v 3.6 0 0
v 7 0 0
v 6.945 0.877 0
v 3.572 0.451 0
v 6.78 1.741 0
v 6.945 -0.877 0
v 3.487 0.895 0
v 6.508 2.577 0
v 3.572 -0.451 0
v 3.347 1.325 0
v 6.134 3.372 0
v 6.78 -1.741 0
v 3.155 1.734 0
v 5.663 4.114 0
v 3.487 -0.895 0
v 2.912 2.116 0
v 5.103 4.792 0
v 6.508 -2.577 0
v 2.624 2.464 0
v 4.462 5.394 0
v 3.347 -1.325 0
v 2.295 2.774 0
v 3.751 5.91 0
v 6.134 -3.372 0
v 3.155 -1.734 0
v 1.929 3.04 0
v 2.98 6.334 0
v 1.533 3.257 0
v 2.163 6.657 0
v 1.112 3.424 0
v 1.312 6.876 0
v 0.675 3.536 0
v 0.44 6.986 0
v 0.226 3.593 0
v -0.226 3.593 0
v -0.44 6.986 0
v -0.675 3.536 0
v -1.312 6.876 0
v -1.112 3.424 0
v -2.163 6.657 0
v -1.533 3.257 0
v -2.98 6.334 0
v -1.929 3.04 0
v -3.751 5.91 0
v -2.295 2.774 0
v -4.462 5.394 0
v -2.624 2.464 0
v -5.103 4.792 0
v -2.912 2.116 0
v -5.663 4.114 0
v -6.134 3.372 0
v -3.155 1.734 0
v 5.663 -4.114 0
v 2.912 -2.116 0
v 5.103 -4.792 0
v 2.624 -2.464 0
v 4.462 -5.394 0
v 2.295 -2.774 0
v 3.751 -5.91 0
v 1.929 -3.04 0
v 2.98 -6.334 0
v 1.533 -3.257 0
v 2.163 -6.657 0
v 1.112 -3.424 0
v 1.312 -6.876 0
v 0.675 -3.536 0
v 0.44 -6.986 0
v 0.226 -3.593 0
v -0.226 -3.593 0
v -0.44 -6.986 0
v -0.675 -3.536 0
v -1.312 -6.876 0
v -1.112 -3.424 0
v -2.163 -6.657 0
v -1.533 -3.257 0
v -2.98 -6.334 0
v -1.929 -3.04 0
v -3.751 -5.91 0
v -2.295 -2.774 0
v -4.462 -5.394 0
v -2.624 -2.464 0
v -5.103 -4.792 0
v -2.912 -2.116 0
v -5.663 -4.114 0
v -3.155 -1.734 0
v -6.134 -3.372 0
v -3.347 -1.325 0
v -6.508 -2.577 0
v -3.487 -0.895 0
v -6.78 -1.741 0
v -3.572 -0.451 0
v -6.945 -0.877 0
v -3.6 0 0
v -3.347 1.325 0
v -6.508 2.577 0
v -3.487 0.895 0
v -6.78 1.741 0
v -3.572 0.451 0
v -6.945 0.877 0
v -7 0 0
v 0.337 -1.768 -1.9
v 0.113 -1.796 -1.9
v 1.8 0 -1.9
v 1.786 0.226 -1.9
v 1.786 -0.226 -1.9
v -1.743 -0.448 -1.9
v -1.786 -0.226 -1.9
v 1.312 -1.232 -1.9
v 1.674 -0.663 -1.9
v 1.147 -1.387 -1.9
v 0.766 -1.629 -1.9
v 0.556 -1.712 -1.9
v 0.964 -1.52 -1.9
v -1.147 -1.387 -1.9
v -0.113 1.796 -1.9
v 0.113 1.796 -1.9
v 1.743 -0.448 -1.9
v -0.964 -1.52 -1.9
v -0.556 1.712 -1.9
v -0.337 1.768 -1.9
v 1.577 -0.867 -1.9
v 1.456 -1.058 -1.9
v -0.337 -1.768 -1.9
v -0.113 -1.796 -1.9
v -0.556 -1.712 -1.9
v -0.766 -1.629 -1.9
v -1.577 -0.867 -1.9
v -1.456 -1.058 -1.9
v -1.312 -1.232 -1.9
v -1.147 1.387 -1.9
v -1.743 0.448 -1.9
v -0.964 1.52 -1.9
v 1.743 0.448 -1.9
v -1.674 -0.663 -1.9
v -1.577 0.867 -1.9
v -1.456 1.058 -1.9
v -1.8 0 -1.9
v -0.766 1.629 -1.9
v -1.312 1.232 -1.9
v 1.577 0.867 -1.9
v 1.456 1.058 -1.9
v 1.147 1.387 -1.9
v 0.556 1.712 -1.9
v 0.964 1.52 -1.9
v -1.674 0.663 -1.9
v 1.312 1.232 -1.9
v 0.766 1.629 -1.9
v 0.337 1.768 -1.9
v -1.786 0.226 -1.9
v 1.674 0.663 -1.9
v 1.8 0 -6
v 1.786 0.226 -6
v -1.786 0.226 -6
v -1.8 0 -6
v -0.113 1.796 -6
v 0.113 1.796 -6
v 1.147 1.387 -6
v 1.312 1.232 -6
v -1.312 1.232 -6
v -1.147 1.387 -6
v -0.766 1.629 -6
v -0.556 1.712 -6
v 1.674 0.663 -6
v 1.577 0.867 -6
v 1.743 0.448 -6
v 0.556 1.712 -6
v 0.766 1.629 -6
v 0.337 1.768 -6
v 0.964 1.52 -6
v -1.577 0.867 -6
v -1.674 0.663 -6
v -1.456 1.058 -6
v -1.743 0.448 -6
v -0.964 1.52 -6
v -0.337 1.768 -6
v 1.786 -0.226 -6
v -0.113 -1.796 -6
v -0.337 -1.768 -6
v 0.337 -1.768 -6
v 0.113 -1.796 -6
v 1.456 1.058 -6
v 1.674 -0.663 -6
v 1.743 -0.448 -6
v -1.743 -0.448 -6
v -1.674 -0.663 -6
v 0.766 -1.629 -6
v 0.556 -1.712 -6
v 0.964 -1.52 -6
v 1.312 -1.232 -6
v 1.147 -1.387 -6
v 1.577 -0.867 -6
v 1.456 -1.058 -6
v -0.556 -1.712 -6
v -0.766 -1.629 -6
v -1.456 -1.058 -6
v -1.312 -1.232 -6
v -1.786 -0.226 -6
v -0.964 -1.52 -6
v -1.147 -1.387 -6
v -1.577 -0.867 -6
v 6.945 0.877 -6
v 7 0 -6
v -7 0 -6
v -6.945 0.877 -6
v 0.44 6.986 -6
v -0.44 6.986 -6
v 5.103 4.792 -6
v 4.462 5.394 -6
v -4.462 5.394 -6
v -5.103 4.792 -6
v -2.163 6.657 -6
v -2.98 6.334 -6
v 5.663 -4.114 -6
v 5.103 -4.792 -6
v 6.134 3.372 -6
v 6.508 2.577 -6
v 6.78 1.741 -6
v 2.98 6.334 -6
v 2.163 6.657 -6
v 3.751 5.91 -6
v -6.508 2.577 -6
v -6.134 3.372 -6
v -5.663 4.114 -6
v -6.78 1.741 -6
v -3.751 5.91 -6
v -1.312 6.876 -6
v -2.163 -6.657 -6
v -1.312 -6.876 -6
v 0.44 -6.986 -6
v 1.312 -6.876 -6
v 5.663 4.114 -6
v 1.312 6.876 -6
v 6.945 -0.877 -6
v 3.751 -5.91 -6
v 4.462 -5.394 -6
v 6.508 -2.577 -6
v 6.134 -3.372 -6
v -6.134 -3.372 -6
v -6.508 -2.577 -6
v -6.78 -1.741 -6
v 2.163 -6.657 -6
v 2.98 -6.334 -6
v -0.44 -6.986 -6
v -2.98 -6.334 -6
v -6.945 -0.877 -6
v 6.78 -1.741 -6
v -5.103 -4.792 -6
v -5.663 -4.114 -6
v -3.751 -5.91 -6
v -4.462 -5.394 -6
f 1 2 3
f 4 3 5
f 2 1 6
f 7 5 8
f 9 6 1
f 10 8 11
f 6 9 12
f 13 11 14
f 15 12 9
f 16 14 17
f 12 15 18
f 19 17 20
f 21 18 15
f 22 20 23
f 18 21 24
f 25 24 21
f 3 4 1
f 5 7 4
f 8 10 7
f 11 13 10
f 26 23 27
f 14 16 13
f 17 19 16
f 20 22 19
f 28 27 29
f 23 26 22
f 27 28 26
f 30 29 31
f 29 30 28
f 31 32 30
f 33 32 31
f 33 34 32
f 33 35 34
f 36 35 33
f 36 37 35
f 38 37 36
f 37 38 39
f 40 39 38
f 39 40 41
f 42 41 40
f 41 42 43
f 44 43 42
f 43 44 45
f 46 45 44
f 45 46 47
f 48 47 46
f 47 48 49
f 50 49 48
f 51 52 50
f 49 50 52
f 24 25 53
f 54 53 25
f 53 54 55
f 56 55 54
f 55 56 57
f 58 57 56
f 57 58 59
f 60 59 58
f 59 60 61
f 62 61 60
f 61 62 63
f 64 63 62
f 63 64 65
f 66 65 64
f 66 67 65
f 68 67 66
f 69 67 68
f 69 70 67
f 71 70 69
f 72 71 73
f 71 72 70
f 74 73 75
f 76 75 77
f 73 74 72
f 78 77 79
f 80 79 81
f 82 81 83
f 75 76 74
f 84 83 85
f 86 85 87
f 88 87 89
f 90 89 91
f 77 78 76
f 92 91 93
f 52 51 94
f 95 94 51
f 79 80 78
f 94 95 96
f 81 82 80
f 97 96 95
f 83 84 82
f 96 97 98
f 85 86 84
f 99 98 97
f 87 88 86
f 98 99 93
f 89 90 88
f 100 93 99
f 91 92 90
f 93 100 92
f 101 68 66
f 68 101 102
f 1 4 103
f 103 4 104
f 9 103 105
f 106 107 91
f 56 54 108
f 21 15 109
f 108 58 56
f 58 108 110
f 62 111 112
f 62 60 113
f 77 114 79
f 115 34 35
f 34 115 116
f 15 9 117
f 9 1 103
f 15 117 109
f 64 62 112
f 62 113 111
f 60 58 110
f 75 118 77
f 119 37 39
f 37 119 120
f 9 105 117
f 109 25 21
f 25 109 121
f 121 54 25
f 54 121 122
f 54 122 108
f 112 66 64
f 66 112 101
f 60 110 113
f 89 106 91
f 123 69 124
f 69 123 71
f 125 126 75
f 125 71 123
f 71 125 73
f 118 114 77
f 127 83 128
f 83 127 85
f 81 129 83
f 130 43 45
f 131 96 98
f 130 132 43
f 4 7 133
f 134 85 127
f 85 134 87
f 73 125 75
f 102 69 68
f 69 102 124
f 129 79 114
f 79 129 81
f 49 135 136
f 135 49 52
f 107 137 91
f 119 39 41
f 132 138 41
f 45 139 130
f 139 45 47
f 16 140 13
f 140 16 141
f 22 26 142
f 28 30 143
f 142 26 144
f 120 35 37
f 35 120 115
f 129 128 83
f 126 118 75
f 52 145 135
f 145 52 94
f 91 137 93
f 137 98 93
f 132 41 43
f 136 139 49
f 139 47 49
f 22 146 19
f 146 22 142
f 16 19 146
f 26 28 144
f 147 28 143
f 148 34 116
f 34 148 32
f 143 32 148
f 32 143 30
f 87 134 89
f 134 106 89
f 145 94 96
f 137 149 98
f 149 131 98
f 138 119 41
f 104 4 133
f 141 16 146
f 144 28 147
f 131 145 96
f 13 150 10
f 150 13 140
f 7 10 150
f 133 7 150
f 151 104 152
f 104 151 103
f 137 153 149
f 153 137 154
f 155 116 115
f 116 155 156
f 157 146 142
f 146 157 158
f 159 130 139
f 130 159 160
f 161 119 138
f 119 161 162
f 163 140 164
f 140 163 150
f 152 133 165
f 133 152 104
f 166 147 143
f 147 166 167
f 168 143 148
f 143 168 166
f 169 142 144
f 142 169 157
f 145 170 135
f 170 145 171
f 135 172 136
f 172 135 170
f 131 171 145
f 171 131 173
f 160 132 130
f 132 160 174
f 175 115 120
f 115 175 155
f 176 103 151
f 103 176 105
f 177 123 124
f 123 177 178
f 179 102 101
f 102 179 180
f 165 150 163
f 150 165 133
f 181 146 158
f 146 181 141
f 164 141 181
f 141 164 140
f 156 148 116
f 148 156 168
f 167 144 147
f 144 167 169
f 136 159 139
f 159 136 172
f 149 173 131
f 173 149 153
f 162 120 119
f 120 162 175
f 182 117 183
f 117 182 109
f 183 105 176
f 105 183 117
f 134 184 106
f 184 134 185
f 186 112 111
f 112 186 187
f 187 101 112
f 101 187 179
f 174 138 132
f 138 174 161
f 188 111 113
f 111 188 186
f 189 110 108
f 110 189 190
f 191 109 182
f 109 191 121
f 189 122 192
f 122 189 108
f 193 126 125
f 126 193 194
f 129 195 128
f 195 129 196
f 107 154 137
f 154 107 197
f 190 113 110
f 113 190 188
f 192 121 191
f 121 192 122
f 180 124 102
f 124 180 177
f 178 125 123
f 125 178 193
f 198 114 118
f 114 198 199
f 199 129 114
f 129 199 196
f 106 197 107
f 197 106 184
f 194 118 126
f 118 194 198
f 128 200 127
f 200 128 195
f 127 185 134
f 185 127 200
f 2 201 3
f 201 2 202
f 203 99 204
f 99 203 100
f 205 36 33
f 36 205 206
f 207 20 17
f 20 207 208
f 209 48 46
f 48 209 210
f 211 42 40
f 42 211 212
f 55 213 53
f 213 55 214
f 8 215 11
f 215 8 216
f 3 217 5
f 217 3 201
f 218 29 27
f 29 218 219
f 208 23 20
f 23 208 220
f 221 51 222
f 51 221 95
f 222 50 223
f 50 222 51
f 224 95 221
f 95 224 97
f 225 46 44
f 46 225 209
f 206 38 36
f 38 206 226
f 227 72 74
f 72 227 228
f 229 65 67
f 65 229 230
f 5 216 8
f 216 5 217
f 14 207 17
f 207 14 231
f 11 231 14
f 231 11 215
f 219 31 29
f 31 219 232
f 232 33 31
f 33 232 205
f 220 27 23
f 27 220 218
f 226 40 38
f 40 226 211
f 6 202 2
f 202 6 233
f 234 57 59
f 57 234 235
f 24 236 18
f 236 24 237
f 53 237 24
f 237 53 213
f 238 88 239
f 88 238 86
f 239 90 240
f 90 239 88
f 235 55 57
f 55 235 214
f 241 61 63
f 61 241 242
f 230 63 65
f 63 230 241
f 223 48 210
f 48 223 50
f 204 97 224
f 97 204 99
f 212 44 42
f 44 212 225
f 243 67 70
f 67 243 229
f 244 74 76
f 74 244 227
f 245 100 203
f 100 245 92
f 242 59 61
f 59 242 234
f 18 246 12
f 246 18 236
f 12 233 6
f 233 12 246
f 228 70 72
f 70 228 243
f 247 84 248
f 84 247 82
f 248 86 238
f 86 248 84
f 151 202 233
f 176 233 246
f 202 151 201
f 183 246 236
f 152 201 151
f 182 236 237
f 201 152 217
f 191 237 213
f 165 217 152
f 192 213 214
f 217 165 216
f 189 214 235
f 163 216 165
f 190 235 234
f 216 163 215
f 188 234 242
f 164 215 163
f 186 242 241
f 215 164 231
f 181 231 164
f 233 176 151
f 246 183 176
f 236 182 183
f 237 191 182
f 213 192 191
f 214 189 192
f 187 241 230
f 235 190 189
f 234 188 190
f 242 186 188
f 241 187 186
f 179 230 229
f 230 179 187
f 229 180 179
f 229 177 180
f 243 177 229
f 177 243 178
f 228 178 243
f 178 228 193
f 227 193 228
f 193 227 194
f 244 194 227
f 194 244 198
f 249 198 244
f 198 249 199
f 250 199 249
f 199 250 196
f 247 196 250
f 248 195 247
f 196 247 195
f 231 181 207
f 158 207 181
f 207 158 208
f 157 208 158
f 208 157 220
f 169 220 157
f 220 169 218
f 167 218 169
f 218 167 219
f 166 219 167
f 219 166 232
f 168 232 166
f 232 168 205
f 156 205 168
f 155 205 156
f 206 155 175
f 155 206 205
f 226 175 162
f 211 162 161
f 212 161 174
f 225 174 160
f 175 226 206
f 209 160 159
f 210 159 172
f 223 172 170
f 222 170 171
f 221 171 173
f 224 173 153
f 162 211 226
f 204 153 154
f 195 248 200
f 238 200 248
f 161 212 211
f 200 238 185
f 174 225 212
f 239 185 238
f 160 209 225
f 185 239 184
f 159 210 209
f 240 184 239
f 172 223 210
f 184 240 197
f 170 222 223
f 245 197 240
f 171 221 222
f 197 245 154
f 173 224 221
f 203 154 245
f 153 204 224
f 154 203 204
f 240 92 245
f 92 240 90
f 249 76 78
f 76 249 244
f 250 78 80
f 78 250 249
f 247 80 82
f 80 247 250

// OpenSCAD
$fn = 50;


difference() {
	union() {
		translate(v = [0, 0, -6.0000000000]) {
			cylinder(h = 6, r = 7.0000000000);
		}
	}
	union() {
		translate(v = [0, 0, 0]) {
			rotate(a = [0, 0, 0]) {
				difference() {
					union() {
						translate(v = [0, 0, -9.0000000000]) {
							cylinder(h = 9, r = 1.5000000000);
						}
						translate(v = [0, 0, -1.9000000000]) {
							cylinder(h = 1.9000000000, r1 = 1.8000000000, r2 = 3.6000000000);
						}
						translate(v = [0, 0, -9.0000000000]) {
							cylinder(h = 9, r = 1.8000000000);
						}
						translate(v = [0, 0, -9.0000000000]) {
							cylinder(h = 9, r = 1.5000000000);
						}
					}
					union();
				}
			}
		}
	}
}
